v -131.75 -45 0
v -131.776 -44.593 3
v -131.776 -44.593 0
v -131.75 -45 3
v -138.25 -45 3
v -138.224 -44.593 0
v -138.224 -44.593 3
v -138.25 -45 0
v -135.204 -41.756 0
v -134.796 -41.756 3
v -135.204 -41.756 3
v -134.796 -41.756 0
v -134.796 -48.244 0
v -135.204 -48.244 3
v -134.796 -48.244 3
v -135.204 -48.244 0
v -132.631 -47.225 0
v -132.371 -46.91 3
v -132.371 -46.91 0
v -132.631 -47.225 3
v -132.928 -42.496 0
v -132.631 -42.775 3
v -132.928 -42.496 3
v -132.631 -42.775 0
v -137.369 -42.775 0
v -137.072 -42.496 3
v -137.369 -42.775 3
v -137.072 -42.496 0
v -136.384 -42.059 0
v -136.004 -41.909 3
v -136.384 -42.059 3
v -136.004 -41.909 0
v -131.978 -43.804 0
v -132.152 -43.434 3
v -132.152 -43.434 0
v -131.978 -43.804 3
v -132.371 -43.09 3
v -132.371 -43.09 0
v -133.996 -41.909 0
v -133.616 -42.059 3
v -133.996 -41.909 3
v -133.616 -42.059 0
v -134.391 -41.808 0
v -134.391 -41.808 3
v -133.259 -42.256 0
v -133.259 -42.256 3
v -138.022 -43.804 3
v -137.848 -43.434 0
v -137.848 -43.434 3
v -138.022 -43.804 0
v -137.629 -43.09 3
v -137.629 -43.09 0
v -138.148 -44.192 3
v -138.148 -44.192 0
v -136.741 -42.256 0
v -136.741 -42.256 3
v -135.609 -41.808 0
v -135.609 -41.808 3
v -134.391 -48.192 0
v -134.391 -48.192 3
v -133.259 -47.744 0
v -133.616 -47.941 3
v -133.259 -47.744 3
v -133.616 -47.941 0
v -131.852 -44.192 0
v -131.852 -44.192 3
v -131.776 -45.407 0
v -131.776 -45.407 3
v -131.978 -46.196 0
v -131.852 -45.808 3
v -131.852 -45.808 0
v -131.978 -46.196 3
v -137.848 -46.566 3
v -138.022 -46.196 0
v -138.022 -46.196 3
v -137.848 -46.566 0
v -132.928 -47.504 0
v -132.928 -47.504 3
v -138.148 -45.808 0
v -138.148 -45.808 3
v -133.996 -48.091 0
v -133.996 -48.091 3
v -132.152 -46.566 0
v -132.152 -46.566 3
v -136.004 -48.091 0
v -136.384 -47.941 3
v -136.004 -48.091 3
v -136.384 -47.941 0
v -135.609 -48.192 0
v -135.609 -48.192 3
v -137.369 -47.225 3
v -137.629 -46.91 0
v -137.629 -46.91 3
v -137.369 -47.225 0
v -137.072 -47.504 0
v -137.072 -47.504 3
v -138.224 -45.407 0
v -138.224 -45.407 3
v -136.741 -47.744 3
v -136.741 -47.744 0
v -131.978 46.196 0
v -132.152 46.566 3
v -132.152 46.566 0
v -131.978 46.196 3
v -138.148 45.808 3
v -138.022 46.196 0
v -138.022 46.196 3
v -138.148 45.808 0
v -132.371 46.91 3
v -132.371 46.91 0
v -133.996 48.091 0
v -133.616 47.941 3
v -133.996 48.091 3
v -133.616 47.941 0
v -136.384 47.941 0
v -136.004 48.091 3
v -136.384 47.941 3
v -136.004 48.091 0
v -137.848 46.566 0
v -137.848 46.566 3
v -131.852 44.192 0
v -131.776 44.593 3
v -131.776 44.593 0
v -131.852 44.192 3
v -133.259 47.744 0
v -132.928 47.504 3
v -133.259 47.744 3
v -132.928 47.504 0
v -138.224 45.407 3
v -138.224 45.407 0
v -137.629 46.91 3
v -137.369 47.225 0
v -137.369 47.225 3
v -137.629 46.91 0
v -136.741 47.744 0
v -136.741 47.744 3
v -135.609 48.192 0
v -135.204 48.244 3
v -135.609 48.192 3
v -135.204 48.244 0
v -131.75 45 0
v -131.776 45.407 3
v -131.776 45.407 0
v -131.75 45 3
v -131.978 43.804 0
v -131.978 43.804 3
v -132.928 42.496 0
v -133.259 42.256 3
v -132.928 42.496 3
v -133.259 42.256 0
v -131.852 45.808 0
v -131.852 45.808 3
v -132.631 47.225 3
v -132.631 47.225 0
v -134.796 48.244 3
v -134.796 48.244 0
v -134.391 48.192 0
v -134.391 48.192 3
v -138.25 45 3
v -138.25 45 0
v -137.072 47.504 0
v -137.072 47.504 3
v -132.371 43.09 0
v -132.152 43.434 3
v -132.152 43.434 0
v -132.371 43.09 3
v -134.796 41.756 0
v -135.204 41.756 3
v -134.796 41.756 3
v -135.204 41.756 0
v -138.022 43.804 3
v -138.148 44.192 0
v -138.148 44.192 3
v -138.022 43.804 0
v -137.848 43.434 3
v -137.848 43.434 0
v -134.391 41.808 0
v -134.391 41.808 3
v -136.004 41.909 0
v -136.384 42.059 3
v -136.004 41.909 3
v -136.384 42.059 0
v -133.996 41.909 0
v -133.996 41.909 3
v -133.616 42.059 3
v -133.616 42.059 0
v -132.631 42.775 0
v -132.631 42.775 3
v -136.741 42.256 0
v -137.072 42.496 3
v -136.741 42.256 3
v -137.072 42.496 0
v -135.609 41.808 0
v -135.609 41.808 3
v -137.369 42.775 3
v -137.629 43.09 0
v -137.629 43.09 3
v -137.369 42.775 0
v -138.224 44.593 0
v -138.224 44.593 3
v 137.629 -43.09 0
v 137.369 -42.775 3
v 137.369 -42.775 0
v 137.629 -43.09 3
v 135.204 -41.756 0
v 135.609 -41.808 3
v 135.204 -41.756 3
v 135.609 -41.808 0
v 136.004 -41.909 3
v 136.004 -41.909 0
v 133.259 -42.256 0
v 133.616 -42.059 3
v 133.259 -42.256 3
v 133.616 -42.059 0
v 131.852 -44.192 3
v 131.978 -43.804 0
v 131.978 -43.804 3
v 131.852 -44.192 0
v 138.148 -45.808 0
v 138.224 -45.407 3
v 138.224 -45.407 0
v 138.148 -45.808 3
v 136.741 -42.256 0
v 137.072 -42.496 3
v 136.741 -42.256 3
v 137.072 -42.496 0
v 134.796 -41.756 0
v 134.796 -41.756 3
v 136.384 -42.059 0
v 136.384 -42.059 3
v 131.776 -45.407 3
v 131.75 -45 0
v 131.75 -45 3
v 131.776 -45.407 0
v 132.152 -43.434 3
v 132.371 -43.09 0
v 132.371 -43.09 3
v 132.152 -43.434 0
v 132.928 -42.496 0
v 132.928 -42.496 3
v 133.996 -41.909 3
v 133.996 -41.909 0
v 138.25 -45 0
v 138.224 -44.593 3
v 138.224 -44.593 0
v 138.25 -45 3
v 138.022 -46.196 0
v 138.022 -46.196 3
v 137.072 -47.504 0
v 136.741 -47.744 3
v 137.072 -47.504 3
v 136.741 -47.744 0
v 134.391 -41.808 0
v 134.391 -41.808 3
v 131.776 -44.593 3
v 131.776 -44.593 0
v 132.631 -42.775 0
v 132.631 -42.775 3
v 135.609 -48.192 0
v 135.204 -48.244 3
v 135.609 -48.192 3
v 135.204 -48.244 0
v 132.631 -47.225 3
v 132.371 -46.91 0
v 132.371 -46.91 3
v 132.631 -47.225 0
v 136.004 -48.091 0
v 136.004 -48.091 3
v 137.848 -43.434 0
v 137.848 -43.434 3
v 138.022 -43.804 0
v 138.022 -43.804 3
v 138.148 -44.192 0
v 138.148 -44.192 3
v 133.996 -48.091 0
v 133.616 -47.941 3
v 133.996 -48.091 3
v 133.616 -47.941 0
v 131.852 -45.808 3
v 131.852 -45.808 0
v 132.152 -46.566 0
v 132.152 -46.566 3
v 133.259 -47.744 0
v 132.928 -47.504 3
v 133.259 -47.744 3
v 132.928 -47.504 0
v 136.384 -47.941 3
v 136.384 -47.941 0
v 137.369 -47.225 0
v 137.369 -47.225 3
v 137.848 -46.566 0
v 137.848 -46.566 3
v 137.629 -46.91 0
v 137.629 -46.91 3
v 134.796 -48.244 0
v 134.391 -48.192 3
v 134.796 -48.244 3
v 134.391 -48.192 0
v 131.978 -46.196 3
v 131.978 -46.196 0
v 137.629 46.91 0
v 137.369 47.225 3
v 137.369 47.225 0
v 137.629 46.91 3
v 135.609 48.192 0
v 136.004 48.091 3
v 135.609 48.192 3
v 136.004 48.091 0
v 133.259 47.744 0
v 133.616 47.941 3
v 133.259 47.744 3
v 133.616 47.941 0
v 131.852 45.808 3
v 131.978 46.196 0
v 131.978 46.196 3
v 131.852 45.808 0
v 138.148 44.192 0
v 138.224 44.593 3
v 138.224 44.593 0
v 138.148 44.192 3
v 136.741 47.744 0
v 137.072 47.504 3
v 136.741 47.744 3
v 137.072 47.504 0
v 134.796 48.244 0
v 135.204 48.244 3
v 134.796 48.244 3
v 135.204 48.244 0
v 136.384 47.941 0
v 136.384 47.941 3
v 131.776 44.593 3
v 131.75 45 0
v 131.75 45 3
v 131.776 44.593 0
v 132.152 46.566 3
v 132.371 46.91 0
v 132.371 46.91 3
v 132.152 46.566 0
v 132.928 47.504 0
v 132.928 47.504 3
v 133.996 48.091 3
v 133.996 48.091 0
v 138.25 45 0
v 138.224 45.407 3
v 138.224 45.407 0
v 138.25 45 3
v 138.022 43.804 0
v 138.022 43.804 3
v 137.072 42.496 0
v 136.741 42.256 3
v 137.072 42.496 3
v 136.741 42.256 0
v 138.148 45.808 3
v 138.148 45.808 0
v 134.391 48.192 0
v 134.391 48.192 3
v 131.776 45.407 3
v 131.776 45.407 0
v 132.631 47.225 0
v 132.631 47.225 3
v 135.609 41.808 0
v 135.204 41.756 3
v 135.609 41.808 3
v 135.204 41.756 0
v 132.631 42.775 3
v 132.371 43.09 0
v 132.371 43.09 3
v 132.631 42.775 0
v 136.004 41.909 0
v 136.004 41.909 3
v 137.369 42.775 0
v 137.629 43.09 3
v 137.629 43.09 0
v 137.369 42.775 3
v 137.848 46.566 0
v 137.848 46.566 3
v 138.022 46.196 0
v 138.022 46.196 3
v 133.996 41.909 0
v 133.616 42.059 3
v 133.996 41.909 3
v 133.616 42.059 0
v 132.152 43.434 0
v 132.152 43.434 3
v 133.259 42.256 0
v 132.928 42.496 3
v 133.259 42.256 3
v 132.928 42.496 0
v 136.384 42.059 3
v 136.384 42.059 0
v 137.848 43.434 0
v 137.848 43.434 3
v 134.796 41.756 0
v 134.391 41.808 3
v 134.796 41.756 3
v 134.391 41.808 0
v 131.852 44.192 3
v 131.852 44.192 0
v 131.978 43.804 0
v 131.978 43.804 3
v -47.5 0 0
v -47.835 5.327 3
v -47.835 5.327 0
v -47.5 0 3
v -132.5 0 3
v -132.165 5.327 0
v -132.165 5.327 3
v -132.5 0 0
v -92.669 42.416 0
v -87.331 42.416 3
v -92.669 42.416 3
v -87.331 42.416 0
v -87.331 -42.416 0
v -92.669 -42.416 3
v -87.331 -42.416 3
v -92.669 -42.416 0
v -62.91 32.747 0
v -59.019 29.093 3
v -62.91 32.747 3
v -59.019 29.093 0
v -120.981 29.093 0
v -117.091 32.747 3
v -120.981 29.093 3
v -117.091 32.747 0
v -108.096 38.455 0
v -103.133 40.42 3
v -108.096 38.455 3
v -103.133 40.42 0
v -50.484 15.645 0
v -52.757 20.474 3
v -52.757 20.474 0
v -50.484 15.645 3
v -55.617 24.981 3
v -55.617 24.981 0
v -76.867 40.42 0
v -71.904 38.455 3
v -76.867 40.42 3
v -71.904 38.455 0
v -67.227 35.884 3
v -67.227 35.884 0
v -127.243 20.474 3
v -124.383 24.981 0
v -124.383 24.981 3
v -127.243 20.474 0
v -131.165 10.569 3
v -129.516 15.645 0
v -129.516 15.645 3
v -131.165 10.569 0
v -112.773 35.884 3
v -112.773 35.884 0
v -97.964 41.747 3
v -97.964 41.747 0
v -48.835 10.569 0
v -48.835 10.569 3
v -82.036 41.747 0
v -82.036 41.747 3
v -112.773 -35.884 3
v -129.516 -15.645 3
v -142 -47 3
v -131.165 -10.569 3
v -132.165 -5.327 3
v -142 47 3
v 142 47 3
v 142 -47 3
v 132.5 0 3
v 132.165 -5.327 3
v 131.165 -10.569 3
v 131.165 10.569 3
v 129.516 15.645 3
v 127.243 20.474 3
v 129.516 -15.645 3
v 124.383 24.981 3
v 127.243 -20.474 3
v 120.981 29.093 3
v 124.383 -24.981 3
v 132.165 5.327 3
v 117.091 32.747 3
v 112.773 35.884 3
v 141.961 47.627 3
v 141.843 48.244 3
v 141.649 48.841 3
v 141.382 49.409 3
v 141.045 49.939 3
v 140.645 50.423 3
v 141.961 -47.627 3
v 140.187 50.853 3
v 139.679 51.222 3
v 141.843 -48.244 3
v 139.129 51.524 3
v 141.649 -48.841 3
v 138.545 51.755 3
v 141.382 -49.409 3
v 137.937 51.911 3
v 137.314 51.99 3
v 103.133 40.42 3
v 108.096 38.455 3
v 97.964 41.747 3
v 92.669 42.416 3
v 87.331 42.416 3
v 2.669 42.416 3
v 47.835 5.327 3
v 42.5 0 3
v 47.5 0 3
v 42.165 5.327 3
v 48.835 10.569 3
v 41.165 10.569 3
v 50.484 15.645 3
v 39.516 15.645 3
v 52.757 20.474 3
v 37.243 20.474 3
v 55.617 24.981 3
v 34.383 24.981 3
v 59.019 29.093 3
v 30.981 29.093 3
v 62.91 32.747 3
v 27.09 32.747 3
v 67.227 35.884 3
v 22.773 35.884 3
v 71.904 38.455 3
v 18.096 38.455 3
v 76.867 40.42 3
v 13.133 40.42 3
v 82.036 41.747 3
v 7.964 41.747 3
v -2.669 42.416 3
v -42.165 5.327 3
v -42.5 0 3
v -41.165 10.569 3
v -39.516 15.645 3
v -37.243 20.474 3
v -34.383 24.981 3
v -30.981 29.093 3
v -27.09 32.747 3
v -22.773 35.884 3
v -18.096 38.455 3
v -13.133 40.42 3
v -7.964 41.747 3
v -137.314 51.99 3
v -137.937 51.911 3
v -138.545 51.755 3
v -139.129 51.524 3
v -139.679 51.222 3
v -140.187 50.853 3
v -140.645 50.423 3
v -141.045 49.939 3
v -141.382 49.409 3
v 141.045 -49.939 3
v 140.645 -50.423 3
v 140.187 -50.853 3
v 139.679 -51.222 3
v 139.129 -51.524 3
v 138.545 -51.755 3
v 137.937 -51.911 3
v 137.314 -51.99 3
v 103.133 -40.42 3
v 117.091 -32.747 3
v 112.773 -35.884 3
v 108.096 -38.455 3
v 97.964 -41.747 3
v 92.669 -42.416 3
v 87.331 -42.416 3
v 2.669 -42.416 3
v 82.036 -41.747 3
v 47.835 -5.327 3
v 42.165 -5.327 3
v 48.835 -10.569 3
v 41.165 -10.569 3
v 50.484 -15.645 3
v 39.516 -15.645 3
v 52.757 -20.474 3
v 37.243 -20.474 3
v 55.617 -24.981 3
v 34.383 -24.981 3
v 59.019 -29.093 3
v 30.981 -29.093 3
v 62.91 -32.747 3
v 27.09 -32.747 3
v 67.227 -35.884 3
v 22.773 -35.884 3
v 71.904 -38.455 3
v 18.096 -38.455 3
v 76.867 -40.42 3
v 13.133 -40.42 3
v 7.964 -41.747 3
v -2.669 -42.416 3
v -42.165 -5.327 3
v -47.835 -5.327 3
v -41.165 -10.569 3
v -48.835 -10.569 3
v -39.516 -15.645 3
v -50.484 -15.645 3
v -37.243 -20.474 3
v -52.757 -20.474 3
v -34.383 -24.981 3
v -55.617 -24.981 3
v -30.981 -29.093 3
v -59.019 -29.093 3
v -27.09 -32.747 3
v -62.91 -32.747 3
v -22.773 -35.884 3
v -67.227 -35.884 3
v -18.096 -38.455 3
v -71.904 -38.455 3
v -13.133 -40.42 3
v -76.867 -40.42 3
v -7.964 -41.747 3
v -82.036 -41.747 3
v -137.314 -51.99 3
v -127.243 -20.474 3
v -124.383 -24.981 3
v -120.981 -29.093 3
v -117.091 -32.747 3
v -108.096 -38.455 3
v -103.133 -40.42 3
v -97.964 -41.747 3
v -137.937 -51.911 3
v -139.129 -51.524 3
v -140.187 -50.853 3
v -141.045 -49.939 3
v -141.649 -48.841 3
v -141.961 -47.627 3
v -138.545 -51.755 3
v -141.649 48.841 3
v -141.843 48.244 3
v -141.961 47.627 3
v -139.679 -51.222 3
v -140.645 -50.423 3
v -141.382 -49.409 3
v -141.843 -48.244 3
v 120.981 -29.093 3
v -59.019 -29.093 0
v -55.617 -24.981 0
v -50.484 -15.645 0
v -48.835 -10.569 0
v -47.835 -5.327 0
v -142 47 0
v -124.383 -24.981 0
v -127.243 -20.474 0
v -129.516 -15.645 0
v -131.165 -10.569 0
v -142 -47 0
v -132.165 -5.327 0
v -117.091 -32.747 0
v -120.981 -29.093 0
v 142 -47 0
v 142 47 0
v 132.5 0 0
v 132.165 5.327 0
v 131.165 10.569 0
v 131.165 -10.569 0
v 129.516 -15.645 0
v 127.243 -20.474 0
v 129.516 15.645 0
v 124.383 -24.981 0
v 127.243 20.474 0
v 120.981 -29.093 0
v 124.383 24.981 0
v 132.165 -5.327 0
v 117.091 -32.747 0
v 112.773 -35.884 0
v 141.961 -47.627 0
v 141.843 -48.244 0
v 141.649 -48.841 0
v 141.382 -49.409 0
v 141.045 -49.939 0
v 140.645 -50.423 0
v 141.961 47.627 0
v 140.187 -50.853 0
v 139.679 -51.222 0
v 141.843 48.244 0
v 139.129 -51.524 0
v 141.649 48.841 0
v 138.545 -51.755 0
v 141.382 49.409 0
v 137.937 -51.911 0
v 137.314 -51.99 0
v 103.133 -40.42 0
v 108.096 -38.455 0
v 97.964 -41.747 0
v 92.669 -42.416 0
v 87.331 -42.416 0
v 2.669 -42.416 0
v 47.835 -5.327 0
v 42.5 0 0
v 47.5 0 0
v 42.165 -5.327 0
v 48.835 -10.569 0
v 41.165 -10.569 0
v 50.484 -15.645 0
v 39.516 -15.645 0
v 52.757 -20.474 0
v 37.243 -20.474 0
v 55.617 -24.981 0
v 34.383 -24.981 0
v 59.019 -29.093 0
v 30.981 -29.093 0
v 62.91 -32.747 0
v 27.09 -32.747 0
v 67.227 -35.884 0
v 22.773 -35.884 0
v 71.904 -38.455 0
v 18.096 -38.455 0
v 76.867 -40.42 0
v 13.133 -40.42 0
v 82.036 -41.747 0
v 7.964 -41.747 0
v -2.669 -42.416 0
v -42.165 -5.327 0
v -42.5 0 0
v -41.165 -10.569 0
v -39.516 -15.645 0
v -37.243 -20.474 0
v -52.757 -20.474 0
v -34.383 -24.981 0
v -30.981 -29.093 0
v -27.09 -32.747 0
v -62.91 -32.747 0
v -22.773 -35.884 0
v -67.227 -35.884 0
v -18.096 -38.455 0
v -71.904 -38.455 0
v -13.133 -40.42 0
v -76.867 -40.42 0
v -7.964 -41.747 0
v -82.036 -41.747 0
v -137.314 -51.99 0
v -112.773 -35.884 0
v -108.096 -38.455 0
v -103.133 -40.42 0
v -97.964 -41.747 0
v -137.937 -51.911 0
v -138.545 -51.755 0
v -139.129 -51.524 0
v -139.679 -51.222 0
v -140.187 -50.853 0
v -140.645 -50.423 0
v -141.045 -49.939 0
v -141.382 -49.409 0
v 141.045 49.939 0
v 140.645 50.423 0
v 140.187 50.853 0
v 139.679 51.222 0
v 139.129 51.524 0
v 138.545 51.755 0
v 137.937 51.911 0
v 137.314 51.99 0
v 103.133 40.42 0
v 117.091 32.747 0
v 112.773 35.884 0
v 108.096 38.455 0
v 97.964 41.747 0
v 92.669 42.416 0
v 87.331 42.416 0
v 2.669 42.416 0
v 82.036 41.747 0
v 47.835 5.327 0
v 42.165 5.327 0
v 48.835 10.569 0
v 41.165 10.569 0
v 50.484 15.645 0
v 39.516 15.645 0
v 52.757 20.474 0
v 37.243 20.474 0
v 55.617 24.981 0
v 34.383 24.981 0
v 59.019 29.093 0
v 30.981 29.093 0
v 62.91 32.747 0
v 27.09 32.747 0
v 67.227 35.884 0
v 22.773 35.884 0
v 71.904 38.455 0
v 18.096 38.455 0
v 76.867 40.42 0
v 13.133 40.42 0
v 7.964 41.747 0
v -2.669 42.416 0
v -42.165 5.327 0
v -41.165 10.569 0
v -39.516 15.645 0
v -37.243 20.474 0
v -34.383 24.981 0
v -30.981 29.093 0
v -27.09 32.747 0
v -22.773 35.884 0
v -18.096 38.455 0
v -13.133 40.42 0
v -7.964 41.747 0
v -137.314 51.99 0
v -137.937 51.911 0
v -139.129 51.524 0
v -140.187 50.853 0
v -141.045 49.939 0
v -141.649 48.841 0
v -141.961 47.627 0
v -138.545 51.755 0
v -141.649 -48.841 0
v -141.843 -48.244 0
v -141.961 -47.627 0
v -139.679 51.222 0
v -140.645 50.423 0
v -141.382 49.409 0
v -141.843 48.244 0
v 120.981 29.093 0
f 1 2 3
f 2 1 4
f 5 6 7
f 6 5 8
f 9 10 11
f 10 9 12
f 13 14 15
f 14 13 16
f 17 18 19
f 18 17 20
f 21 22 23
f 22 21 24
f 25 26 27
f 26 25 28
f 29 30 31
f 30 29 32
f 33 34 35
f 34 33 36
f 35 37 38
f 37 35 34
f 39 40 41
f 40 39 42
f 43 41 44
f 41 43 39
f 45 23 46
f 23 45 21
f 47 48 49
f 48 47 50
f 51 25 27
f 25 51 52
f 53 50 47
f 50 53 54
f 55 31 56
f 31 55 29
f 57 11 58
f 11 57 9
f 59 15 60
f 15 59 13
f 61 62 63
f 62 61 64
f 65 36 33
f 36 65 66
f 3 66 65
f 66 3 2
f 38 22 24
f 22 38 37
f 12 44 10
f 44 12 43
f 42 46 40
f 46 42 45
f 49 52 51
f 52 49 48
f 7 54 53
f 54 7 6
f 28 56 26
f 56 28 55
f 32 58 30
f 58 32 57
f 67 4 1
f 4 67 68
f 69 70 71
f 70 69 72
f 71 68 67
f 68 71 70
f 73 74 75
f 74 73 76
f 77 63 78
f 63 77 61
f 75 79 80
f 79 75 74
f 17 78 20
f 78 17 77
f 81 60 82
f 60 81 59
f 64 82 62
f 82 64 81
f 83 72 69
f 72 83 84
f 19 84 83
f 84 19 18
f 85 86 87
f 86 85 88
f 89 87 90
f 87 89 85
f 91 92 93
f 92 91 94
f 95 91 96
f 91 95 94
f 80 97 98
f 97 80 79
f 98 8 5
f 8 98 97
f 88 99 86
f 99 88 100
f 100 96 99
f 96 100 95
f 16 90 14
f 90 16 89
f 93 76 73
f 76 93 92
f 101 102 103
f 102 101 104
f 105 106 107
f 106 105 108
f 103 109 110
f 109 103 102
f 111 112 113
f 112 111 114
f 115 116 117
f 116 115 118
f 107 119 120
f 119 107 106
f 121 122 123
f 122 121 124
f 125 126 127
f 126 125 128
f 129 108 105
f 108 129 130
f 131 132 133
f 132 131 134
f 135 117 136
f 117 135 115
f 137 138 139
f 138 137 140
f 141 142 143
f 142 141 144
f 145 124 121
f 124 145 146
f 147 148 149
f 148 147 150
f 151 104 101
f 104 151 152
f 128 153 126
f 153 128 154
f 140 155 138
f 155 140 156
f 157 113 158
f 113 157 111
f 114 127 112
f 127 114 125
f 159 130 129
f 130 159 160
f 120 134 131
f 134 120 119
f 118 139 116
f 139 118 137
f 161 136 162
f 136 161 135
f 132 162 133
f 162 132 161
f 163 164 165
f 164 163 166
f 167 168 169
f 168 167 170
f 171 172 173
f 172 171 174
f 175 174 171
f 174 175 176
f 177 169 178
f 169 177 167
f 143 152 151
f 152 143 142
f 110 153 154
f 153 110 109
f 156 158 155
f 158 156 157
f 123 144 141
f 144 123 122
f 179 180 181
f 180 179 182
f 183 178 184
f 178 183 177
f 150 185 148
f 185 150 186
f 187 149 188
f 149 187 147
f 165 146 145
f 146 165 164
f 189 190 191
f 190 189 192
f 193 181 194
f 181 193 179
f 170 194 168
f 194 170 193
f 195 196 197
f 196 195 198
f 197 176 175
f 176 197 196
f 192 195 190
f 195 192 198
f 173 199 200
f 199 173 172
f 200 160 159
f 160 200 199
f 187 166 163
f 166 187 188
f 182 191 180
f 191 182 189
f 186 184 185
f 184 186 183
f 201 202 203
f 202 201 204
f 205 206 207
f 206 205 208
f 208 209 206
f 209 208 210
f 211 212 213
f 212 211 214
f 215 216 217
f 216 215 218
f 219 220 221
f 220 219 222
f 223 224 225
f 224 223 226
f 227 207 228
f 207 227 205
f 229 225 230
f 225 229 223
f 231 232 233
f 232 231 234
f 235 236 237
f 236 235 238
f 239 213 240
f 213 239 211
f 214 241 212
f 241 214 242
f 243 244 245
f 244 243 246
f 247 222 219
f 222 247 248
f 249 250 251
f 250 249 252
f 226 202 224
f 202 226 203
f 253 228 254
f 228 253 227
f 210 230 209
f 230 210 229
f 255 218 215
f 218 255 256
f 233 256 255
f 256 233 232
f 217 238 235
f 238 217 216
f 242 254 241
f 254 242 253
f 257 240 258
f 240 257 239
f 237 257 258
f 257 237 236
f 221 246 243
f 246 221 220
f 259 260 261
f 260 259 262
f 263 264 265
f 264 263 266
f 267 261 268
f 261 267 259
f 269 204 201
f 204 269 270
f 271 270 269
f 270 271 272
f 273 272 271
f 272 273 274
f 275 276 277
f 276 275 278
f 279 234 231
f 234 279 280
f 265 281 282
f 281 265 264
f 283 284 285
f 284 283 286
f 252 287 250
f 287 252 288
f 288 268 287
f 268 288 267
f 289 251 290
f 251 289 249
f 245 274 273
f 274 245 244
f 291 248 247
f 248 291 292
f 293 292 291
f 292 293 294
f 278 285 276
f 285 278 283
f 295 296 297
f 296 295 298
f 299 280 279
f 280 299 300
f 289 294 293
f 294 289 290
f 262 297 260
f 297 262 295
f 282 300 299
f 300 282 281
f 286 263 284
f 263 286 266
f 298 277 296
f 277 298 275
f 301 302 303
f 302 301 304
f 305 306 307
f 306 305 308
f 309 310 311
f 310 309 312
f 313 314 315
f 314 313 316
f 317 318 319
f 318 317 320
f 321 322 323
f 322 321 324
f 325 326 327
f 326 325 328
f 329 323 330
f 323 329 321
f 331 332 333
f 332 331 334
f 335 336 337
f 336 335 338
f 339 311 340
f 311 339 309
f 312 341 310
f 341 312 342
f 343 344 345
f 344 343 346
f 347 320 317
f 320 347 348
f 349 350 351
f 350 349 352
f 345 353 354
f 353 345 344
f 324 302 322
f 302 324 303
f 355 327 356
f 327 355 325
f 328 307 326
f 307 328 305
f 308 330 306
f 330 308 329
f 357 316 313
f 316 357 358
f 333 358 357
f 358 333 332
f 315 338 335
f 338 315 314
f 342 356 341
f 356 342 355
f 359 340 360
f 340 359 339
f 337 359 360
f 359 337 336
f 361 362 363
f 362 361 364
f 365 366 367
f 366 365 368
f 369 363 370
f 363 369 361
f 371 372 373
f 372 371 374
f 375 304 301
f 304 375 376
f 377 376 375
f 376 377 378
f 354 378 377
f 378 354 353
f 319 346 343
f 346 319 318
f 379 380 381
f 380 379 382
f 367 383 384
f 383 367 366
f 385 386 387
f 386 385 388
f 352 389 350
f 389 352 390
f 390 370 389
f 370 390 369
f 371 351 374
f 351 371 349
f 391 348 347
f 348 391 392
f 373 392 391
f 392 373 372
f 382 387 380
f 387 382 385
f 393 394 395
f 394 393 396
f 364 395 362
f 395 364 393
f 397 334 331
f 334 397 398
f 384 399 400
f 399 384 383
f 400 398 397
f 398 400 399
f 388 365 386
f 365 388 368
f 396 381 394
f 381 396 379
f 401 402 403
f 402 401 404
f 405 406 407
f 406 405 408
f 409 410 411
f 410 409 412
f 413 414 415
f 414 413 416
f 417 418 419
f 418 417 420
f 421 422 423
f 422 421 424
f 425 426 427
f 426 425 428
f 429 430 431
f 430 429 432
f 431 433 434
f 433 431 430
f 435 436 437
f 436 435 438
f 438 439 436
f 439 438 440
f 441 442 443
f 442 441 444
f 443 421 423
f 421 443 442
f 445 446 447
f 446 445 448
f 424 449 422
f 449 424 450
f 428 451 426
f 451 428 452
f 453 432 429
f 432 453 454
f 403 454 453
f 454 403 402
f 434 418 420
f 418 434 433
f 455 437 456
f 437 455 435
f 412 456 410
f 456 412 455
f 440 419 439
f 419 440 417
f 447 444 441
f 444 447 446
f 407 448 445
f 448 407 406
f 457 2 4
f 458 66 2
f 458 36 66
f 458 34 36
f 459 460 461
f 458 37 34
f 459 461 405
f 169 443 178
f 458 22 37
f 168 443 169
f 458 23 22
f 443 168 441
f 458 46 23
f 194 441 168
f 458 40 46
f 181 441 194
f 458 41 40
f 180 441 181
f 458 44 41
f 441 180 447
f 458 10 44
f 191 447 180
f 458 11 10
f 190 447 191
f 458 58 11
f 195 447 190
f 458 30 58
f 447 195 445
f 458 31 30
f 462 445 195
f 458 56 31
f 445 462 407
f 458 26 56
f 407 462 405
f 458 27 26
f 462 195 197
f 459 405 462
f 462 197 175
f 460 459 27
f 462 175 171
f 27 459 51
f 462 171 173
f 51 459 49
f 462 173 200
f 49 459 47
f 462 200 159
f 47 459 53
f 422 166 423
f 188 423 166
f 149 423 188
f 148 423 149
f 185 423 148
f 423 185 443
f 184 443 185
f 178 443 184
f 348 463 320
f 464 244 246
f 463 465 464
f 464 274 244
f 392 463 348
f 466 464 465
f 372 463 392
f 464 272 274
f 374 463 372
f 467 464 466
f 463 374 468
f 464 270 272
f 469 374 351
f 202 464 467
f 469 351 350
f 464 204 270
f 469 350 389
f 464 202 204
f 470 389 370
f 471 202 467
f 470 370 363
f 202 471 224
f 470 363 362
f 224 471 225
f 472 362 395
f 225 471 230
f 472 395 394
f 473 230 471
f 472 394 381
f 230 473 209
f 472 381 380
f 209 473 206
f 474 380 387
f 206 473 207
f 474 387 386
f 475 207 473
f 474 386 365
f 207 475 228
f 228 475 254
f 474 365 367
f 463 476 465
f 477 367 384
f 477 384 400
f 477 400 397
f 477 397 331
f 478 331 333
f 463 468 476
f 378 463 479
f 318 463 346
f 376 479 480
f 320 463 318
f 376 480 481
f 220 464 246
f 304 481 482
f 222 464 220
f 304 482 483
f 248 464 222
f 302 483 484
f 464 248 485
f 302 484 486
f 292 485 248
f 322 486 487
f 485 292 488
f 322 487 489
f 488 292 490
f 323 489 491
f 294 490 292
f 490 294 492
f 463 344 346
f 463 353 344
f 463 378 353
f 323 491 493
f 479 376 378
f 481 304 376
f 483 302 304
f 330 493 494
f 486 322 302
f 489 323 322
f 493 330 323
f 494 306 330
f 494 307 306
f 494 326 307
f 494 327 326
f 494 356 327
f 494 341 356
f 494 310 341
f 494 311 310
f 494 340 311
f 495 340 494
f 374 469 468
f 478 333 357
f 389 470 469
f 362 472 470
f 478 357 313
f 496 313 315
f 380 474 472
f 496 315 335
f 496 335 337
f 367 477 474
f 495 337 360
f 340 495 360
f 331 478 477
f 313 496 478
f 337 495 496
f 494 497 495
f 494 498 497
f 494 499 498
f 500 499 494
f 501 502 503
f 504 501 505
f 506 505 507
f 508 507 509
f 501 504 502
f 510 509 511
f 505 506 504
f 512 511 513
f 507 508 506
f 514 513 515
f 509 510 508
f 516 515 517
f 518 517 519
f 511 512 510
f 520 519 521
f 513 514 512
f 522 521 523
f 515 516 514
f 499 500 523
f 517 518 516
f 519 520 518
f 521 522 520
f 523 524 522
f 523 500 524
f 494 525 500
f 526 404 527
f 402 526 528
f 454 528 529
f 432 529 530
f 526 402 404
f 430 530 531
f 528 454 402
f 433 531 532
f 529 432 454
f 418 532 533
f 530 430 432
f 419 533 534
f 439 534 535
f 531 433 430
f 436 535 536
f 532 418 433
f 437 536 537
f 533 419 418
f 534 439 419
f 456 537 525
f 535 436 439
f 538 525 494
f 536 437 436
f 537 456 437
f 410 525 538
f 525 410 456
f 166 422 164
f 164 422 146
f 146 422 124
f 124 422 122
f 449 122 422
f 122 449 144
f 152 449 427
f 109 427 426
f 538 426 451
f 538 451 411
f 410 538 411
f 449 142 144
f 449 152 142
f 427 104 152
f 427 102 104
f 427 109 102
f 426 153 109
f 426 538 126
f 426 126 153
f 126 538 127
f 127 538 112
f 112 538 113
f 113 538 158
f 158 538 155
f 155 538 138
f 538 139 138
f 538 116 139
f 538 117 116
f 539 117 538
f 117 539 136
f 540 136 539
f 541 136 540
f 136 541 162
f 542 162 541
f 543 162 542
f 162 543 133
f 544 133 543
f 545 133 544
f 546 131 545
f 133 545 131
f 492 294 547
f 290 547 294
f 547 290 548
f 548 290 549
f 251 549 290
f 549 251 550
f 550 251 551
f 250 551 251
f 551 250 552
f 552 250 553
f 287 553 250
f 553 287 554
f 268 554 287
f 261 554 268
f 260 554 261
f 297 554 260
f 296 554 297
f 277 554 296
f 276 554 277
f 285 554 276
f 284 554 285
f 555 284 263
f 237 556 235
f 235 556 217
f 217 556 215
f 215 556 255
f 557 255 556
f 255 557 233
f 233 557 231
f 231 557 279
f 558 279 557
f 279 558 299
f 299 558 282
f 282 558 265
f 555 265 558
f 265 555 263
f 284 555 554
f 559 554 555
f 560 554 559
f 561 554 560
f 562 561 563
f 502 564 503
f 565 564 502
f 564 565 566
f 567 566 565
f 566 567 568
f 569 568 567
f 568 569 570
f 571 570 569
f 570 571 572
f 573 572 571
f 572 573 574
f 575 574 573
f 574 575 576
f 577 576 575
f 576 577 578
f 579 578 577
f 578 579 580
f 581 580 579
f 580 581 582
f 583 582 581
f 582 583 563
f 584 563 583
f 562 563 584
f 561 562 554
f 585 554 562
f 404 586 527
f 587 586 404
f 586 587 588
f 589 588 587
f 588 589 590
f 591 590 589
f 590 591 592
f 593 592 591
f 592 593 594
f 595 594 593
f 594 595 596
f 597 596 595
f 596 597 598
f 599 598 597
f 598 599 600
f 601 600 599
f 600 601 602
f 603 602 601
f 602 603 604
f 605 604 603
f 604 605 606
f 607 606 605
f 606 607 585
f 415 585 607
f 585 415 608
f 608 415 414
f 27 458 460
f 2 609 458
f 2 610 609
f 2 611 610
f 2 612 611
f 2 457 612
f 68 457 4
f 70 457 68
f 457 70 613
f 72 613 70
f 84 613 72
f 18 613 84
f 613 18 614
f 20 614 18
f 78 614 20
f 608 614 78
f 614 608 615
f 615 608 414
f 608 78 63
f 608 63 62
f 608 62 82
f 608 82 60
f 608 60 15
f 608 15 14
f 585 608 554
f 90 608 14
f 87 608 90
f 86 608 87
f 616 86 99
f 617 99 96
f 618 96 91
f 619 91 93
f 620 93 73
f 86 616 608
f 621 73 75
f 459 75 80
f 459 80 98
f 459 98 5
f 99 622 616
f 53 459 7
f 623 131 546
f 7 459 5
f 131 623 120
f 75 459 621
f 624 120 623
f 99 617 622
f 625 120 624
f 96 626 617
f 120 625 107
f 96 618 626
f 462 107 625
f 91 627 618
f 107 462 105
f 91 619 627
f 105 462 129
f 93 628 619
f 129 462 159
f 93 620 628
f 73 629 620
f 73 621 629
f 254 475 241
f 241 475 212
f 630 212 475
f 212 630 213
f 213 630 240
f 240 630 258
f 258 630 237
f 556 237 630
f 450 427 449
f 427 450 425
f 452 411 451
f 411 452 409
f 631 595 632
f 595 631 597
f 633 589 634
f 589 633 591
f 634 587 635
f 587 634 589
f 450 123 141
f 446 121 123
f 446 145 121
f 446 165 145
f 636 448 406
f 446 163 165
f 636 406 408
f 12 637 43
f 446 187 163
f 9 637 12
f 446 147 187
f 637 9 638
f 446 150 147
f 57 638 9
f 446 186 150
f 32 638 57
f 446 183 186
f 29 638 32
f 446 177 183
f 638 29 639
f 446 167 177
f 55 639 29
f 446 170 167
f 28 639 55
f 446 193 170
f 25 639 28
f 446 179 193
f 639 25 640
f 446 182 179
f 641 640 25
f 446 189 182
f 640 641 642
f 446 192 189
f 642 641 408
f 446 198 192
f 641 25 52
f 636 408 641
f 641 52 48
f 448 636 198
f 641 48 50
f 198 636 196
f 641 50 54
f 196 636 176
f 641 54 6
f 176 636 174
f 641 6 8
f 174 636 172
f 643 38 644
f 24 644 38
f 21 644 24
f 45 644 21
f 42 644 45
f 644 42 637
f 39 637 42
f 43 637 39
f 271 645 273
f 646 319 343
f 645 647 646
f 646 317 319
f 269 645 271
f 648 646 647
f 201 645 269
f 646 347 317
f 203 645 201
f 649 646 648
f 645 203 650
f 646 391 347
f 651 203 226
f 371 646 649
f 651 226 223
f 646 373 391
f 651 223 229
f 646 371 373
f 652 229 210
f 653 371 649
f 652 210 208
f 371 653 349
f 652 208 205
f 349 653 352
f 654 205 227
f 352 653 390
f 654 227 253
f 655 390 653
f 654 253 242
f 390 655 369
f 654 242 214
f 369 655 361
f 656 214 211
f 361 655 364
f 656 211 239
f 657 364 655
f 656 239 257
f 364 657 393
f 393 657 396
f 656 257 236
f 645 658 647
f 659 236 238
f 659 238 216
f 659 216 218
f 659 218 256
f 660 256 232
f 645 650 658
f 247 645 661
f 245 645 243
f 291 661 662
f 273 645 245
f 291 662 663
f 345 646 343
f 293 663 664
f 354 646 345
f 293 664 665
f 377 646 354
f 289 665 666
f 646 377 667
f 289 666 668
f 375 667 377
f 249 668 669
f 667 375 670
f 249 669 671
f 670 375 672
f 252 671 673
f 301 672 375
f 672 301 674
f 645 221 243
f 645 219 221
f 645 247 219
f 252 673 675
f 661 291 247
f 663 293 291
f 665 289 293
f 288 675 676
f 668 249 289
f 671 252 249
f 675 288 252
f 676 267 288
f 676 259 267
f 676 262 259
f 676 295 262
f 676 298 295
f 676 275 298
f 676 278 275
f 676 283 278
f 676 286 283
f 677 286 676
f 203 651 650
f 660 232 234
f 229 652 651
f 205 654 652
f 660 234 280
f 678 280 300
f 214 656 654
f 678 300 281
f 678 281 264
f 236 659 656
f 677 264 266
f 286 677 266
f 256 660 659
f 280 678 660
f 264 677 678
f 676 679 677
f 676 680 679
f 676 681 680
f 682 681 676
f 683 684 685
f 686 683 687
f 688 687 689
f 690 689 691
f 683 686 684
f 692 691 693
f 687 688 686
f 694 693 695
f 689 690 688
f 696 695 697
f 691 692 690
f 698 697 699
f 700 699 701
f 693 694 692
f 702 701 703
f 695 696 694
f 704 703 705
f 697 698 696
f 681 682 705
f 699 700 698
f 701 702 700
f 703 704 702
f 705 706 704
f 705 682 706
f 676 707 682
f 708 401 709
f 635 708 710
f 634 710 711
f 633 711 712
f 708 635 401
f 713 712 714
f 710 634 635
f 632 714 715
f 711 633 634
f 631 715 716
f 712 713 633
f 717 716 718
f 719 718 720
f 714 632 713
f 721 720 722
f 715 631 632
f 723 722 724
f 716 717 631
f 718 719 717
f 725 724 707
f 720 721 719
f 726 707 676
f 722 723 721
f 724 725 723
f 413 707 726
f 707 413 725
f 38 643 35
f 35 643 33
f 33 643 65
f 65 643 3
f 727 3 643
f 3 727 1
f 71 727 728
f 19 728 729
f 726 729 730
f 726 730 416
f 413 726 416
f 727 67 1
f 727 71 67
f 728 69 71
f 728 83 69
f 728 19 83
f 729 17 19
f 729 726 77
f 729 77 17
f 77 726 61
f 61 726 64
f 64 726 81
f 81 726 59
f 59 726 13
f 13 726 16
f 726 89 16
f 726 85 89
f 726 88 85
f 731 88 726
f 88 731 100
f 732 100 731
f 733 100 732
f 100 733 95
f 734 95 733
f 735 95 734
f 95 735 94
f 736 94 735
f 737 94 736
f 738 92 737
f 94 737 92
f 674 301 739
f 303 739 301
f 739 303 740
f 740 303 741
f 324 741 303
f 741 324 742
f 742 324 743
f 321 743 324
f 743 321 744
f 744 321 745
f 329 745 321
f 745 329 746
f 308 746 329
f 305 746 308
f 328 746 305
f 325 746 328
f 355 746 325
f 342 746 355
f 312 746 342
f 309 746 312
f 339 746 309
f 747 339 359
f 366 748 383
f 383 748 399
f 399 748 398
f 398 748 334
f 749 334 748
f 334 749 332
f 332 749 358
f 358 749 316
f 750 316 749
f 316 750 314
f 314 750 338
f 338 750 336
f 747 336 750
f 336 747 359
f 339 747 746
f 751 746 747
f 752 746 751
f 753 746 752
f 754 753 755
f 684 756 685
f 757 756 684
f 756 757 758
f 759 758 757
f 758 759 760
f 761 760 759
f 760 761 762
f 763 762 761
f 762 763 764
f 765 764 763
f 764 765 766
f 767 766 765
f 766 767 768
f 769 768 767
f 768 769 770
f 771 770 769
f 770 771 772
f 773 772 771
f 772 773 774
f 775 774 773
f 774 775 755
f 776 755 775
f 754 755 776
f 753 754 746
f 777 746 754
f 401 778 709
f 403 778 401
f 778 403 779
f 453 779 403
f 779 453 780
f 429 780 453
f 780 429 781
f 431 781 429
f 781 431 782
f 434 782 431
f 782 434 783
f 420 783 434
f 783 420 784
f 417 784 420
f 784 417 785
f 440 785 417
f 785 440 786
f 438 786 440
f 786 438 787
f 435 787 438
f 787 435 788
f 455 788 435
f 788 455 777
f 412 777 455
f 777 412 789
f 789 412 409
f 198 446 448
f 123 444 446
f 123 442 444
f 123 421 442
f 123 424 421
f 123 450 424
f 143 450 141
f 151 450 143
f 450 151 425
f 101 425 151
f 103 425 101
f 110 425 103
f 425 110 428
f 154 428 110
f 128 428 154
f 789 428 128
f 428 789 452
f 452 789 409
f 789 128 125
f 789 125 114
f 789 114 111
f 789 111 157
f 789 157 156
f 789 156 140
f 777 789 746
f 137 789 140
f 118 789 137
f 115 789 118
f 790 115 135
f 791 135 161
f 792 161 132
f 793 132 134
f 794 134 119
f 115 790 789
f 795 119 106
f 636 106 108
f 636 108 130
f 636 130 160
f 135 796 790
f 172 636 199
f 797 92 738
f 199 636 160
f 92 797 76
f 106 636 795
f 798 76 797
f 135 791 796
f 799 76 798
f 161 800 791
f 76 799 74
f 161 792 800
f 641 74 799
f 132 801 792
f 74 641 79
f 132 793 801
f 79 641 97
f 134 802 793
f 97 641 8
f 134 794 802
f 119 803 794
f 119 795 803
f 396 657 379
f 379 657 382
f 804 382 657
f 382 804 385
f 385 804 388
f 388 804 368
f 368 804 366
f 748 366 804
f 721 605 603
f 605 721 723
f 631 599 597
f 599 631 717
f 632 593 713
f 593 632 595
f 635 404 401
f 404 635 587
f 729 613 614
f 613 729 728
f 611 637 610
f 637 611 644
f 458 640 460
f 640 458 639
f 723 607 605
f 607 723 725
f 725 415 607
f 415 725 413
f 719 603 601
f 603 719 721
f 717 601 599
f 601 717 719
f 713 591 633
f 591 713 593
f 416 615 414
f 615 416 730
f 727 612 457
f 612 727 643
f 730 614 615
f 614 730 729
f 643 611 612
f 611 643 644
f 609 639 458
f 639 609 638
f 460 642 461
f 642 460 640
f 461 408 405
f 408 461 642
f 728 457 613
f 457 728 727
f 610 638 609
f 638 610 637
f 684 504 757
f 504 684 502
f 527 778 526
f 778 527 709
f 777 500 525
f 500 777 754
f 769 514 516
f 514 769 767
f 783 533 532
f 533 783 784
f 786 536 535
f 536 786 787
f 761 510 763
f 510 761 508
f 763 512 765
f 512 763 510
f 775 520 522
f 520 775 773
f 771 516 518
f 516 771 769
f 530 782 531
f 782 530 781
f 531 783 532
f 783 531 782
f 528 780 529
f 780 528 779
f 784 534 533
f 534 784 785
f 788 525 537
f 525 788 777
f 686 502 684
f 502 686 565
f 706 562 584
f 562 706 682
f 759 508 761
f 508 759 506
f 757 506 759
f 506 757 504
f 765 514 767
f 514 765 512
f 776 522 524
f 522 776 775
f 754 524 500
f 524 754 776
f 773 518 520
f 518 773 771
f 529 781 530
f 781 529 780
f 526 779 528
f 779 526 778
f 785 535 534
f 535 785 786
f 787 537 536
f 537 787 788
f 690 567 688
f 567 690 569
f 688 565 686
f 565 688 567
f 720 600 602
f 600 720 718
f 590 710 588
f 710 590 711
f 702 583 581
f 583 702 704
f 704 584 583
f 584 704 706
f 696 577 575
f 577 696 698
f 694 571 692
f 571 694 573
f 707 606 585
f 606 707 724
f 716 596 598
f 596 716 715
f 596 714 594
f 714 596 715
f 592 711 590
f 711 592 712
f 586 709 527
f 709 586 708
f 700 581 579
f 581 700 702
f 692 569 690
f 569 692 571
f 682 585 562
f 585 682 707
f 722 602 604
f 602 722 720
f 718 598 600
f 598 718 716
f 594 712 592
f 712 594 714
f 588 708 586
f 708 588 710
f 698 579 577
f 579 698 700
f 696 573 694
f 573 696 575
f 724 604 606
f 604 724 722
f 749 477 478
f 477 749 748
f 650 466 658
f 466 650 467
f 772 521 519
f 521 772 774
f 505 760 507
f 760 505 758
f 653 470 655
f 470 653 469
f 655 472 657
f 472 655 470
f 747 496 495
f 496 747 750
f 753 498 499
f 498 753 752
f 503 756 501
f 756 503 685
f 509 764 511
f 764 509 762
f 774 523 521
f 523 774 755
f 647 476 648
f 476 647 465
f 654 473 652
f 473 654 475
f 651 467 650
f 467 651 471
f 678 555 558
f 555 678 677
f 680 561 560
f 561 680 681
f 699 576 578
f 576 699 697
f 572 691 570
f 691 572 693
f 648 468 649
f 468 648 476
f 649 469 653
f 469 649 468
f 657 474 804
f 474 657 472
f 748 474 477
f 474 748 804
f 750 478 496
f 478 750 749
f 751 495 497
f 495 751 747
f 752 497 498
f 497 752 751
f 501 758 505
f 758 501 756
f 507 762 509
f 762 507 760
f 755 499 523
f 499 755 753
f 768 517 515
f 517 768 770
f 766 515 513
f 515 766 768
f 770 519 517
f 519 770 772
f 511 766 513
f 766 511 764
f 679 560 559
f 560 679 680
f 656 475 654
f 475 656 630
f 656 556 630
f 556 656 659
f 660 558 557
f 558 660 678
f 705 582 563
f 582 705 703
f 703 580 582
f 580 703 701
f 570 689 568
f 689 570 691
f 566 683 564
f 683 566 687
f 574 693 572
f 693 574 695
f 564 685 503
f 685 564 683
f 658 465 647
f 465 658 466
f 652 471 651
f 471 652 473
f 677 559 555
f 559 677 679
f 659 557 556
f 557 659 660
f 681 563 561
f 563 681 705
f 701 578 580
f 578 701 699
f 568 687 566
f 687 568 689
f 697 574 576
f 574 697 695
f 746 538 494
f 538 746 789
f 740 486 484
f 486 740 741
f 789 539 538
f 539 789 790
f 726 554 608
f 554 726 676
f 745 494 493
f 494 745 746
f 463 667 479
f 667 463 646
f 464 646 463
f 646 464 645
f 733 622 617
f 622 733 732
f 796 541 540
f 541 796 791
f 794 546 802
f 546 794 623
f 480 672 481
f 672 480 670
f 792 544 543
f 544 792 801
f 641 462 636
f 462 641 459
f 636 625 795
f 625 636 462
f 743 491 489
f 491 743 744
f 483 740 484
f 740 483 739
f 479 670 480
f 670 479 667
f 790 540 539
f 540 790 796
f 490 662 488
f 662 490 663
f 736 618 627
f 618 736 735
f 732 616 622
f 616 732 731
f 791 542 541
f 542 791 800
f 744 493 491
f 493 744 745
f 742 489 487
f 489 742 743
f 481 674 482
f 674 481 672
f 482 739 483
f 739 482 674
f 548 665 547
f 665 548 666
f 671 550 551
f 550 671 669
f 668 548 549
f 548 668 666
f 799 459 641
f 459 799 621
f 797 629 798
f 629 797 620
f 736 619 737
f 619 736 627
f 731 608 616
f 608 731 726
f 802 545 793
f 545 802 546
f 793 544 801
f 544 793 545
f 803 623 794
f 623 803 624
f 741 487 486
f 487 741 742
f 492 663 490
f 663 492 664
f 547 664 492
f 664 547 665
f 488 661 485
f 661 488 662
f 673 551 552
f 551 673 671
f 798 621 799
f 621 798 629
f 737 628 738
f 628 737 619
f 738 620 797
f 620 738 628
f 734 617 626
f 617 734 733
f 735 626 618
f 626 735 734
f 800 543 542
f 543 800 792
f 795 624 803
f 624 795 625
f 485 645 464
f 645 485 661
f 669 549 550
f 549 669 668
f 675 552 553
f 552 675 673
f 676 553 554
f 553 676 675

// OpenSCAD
$fn = 50;


difference() {
	union() {
		hull() {
			translate(v = [-137.0000000000, 47.0000000000, 0]) {
				cylinder(h = 3, r = 5);
			}
			translate(v = [137.0000000000, 47.0000000000, 0]) {
				cylinder(h = 3, r = 5);
			}
			translate(v = [-137.0000000000, -47.0000000000, 0]) {
				cylinder(h = 3, r = 5);
			}
			translate(v = [137.0000000000, -47.0000000000, 0]) {
				cylinder(h = 3, r = 5);
			}
		}
	}
	union() {
		#translate(v = [-135.0000000000, -45.0000000000, -100.0000000000]) {
			cylinder(h = 200, r = 3.2500000000);
		}
		#translate(v = [-135.0000000000, 45.0000000000, -100.0000000000]) {
			cylinder(h = 200, r = 3.2500000000);
		}
		#translate(v = [135.0000000000, -45.0000000000, -100.0000000000]) {
			cylinder(h = 200, r = 3.2500000000);
		}
		#translate(v = [135.0000000000, 45.0000000000, -100.0000000000]) {
			cylinder(h = 200, r = 3.2500000000);
		}
		#translate(v = [-90.0000000000, 0, 0]) {
			cylinder(h = 3, r = 42.5000000000);
		}
		#cylinder(h = 3, r = 42.5000000000);
		#translate(v = [90.0000000000, 0, 0]) {
			cylinder(h = 3, r = 42.5000000000);
		}
	}
}
